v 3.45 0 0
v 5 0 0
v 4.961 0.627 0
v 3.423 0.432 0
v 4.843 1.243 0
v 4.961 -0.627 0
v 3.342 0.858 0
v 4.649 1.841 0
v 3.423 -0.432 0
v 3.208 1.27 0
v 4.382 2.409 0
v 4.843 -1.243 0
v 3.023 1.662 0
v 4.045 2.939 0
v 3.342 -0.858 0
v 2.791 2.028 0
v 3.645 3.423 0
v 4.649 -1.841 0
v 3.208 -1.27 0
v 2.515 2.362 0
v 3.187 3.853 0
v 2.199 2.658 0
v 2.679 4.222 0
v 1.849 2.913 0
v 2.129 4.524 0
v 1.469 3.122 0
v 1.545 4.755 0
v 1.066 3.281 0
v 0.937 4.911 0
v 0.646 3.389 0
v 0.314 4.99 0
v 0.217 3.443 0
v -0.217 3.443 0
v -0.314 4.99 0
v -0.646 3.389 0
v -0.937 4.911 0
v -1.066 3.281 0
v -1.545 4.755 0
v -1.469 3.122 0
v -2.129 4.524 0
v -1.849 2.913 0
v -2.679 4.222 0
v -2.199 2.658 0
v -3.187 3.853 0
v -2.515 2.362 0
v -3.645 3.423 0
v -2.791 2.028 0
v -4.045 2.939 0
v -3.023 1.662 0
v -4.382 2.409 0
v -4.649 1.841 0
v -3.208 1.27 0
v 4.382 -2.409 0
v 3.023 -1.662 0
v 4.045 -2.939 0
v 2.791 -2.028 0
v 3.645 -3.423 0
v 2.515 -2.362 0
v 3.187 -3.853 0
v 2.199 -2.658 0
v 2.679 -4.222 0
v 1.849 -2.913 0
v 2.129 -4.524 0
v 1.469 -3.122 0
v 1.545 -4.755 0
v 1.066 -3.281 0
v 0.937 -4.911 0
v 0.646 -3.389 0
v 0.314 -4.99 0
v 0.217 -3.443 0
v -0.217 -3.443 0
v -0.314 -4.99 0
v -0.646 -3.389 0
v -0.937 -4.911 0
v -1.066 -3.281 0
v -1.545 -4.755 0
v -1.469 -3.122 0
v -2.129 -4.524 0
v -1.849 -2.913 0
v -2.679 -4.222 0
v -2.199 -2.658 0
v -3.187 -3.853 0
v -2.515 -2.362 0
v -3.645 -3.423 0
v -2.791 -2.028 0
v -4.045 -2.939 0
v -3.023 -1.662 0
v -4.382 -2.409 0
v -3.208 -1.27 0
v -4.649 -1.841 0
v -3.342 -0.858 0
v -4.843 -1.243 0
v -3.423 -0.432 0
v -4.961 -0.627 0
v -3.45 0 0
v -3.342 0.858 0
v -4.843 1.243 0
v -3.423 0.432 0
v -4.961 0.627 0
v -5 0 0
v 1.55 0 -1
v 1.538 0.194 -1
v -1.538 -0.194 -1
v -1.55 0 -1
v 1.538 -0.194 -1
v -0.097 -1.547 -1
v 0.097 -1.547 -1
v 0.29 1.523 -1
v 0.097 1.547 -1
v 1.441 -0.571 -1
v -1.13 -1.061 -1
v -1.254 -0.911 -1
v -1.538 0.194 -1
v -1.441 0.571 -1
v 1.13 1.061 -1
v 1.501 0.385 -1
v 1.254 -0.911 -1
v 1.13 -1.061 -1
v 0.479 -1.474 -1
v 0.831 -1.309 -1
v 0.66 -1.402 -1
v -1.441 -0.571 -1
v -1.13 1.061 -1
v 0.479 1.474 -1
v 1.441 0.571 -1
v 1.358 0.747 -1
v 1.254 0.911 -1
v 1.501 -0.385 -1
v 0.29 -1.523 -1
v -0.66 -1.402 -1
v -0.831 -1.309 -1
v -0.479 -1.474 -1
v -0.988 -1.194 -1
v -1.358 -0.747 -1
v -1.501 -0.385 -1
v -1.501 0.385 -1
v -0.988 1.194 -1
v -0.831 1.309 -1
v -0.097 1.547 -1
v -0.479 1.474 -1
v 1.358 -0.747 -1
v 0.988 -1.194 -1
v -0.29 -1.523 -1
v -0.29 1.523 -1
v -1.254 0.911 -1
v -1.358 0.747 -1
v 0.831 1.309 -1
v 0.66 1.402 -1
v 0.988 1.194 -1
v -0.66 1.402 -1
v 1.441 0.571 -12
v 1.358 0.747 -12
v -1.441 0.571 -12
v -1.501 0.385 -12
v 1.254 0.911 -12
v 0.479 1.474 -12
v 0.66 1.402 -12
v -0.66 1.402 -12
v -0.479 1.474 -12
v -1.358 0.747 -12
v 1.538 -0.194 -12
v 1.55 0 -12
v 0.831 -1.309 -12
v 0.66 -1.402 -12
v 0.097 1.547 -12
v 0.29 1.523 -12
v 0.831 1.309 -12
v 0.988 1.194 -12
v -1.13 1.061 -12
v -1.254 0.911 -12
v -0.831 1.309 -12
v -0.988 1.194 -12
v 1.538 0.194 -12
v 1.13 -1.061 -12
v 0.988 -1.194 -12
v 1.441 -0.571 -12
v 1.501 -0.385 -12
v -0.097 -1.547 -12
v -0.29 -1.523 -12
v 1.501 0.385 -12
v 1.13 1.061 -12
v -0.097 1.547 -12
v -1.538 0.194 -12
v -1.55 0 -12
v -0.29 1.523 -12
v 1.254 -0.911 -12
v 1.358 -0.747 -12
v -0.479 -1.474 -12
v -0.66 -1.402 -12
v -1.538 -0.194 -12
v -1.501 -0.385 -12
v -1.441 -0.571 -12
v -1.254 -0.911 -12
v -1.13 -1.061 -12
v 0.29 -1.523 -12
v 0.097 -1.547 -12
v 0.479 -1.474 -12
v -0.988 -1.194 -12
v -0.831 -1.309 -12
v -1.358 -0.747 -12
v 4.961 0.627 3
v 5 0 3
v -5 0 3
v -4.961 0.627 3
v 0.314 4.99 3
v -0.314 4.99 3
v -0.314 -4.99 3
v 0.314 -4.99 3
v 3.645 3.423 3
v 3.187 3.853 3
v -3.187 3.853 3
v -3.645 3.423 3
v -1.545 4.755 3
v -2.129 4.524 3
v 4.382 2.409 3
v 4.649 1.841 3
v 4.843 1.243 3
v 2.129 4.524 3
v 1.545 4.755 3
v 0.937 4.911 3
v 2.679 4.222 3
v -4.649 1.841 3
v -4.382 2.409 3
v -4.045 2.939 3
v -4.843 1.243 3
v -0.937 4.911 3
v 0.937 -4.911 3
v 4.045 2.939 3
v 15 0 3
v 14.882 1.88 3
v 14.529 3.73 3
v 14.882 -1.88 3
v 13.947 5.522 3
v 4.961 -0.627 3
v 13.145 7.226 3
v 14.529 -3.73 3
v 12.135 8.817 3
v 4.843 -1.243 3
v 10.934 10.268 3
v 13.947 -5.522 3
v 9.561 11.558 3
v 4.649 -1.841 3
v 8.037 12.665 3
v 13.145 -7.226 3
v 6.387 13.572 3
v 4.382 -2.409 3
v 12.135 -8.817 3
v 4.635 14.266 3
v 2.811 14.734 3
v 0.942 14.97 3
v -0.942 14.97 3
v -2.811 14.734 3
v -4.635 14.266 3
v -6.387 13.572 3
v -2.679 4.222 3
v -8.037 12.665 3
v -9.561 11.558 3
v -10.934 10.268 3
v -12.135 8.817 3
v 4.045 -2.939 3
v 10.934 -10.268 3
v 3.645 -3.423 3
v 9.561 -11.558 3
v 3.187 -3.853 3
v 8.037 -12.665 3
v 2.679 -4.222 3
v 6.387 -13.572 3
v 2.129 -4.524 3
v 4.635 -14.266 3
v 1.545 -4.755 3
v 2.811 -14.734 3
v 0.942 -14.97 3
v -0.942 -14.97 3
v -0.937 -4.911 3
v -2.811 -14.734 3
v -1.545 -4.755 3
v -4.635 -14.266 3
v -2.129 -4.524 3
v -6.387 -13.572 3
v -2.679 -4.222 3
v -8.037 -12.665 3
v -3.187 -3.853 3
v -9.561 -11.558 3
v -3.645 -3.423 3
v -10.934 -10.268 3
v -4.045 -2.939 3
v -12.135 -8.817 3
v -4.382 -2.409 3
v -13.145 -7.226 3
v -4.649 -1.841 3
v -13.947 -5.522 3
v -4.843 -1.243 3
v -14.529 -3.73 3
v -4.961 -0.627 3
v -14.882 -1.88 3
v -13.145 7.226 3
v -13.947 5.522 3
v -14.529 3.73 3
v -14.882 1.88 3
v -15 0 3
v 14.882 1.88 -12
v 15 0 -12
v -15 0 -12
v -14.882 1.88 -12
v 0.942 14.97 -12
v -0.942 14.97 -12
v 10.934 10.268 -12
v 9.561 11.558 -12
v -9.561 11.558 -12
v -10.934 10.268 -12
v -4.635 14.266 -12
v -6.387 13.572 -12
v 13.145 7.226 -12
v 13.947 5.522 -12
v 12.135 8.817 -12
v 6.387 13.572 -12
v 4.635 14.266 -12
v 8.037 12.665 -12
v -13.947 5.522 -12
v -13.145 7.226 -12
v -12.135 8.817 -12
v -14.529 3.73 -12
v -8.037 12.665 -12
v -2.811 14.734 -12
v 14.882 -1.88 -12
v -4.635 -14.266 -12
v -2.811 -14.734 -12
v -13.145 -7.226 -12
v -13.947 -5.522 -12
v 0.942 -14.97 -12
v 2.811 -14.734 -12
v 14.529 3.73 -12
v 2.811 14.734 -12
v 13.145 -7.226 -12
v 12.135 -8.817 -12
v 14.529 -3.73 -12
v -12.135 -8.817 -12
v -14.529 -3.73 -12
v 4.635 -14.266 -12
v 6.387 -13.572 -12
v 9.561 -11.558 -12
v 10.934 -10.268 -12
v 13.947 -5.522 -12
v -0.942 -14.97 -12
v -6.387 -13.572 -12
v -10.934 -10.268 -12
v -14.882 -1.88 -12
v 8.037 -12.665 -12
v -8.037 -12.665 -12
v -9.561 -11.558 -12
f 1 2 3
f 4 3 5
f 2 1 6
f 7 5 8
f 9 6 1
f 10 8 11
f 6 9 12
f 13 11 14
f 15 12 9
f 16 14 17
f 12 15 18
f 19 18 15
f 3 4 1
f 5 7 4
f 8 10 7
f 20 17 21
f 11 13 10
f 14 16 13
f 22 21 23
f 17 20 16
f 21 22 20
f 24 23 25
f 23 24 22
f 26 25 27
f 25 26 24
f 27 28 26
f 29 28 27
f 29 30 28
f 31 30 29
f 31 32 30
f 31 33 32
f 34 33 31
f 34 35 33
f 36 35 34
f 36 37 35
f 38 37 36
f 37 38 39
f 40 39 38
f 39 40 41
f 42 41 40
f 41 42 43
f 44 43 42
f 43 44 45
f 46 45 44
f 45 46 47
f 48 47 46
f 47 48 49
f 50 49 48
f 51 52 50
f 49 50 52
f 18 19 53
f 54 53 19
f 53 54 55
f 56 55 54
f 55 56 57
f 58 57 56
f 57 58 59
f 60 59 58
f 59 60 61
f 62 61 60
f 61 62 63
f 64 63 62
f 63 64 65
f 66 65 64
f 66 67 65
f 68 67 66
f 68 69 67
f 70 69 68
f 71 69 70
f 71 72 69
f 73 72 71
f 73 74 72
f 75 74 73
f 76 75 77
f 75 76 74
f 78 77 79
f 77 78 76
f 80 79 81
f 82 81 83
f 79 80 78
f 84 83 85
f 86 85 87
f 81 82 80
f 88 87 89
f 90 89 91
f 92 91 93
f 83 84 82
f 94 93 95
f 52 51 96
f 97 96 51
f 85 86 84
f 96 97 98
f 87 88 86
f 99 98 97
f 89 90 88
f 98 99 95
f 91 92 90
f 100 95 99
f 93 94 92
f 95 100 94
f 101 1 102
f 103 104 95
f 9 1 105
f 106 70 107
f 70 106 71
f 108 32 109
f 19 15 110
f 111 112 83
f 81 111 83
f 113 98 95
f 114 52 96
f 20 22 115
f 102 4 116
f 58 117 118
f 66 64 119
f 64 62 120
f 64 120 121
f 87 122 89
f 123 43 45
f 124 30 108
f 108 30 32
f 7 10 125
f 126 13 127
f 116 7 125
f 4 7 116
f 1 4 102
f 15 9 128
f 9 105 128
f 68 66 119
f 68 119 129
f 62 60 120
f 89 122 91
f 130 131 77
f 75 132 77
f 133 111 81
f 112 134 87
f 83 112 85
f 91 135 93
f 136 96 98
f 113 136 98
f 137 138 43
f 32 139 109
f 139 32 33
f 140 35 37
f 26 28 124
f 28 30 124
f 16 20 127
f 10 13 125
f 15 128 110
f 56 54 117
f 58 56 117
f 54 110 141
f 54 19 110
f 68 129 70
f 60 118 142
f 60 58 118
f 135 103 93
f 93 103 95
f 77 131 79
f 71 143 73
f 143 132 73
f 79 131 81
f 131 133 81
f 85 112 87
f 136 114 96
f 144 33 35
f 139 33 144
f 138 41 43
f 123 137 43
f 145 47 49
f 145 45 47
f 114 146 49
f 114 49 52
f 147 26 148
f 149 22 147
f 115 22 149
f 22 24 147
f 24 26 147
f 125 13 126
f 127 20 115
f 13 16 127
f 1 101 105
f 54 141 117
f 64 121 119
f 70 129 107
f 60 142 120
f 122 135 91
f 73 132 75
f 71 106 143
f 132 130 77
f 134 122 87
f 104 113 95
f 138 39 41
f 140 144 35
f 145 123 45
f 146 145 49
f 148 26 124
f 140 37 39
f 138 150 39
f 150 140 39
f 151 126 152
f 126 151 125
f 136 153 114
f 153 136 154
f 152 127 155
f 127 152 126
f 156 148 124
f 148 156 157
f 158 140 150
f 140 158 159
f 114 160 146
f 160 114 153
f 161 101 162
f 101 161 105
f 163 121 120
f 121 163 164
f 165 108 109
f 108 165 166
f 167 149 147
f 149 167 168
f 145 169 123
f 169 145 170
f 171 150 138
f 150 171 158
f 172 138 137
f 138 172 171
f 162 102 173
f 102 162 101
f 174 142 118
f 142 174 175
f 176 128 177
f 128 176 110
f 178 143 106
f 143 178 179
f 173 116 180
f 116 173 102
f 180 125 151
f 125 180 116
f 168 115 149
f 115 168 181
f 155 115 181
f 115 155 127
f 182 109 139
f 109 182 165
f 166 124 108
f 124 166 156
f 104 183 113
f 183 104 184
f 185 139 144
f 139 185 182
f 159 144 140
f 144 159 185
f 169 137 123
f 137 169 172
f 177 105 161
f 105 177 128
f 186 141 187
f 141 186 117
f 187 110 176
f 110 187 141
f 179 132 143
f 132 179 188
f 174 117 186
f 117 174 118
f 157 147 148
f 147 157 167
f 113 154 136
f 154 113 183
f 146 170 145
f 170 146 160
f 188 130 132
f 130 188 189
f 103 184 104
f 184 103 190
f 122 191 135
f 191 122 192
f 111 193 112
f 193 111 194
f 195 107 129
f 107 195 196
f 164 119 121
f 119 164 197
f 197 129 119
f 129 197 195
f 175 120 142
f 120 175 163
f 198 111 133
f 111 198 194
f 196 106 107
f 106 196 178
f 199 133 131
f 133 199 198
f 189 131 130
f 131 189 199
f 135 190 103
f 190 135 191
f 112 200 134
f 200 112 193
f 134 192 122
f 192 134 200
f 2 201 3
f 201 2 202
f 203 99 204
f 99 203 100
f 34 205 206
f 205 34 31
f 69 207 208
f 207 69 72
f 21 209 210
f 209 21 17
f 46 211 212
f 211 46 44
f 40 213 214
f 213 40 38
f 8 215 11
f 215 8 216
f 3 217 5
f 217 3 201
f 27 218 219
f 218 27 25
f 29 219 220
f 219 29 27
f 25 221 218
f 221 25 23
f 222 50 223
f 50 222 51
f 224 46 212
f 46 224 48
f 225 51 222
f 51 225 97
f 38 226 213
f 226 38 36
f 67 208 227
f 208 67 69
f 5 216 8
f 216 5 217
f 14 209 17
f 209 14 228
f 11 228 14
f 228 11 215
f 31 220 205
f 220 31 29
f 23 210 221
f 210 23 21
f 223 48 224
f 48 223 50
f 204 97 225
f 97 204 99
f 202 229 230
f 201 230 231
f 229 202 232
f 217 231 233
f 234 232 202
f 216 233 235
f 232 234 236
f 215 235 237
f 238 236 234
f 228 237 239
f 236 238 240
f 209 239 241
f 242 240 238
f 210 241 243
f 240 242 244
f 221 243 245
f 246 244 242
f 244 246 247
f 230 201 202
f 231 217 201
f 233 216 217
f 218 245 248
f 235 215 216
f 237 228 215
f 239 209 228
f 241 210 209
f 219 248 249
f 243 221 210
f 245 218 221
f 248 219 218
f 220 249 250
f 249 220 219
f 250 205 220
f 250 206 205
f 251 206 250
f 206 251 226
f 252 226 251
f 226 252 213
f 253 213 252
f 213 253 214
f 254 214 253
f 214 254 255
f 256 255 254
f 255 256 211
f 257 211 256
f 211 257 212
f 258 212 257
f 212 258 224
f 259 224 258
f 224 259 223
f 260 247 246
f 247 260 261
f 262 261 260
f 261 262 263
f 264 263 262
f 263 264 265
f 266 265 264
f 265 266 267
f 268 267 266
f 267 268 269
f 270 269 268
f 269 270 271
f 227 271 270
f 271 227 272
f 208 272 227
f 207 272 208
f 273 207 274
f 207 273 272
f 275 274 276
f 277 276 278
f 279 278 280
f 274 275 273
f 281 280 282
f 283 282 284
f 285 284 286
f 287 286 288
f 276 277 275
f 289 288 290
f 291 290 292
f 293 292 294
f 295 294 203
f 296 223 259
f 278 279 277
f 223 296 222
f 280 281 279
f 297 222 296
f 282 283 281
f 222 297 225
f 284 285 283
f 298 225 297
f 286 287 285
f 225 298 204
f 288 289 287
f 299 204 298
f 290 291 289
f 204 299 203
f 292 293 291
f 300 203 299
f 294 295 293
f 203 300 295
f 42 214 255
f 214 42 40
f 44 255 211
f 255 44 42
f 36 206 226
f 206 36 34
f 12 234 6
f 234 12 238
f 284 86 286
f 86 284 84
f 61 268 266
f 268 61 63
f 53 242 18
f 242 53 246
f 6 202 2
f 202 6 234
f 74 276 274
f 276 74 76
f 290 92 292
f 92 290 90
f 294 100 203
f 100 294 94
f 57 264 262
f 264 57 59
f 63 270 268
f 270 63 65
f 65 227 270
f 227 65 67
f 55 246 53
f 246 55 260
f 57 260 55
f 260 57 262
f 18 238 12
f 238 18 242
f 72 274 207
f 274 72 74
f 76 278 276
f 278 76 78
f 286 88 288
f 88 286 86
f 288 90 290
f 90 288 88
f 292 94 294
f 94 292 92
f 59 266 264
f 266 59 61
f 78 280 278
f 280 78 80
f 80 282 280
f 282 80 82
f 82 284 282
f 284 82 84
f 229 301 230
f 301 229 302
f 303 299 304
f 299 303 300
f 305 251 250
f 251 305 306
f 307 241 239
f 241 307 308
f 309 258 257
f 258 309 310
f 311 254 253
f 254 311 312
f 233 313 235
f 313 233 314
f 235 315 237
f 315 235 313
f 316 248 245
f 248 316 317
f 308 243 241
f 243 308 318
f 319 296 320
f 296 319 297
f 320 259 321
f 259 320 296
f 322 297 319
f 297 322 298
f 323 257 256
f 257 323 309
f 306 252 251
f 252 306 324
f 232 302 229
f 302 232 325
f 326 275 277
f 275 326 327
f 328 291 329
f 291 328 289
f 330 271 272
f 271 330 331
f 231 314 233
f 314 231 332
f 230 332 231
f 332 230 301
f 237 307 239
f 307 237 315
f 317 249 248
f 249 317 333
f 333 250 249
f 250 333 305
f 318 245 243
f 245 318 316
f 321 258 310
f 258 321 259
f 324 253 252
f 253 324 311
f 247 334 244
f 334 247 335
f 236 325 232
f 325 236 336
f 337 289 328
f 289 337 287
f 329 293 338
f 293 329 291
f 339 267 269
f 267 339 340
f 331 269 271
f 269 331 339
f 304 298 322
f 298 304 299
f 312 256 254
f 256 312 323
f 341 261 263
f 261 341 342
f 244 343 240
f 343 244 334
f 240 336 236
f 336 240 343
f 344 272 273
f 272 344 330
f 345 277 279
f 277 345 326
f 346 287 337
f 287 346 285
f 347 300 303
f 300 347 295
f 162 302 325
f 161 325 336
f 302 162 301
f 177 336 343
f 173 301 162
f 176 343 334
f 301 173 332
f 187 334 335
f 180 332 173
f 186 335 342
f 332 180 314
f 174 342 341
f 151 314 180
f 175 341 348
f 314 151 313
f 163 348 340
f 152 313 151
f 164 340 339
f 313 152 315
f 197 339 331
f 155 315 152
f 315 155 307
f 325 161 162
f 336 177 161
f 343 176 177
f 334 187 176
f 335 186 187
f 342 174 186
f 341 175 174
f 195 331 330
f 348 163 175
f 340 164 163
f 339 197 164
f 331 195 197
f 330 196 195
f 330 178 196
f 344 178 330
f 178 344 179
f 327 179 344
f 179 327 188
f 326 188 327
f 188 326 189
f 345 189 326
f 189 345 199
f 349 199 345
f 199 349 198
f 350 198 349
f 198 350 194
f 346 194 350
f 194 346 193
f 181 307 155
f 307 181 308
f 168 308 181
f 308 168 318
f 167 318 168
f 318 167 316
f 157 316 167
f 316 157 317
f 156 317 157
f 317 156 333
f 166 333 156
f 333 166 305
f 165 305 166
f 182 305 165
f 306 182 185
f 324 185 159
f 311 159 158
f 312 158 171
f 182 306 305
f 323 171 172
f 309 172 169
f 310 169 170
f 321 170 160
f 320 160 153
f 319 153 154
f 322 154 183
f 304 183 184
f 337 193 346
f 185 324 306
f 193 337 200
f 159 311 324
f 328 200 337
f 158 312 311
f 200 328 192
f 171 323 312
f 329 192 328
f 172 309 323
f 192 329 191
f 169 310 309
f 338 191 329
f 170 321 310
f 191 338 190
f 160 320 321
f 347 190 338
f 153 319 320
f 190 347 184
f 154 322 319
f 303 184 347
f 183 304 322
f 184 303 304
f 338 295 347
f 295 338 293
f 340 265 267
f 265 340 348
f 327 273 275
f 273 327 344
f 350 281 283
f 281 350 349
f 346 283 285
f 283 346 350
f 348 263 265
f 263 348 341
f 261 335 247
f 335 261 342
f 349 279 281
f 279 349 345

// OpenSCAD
$fn = 50;


difference() {
	union() {
		translate(v = [0, 0, -12.0000000000]) {
			cylinder(h = 15, r = 15.0000000000);
		}
	}
	union() {
		translate(v = [0, 0, 0]) {
			rotate(a = [0, 0, 0]) {
				difference() {
					union() {
						translate(v = [0, 0, -15.0000000000]) {
							cylinder(h = 15, r = 1.2500000000);
						}
						translate(v = [0, 0, -1.0000000000]) {
							cylinder(h = 1.0000000000, r1 = 1.5500000000, r2 = 3.4500000000);
						}
						translate(v = [0, 0, -15.0000000000]) {
							cylinder(h = 15, r = 1.5500000000);
						}
						translate(v = [0, 0, -15.0000000000]) {
							cylinder(h = 15, r = 1.2500000000);
						}
					}
					union();
				}
			}
		}
		#cylinder(h = 3, r = 5.0000000000);
	}
}
